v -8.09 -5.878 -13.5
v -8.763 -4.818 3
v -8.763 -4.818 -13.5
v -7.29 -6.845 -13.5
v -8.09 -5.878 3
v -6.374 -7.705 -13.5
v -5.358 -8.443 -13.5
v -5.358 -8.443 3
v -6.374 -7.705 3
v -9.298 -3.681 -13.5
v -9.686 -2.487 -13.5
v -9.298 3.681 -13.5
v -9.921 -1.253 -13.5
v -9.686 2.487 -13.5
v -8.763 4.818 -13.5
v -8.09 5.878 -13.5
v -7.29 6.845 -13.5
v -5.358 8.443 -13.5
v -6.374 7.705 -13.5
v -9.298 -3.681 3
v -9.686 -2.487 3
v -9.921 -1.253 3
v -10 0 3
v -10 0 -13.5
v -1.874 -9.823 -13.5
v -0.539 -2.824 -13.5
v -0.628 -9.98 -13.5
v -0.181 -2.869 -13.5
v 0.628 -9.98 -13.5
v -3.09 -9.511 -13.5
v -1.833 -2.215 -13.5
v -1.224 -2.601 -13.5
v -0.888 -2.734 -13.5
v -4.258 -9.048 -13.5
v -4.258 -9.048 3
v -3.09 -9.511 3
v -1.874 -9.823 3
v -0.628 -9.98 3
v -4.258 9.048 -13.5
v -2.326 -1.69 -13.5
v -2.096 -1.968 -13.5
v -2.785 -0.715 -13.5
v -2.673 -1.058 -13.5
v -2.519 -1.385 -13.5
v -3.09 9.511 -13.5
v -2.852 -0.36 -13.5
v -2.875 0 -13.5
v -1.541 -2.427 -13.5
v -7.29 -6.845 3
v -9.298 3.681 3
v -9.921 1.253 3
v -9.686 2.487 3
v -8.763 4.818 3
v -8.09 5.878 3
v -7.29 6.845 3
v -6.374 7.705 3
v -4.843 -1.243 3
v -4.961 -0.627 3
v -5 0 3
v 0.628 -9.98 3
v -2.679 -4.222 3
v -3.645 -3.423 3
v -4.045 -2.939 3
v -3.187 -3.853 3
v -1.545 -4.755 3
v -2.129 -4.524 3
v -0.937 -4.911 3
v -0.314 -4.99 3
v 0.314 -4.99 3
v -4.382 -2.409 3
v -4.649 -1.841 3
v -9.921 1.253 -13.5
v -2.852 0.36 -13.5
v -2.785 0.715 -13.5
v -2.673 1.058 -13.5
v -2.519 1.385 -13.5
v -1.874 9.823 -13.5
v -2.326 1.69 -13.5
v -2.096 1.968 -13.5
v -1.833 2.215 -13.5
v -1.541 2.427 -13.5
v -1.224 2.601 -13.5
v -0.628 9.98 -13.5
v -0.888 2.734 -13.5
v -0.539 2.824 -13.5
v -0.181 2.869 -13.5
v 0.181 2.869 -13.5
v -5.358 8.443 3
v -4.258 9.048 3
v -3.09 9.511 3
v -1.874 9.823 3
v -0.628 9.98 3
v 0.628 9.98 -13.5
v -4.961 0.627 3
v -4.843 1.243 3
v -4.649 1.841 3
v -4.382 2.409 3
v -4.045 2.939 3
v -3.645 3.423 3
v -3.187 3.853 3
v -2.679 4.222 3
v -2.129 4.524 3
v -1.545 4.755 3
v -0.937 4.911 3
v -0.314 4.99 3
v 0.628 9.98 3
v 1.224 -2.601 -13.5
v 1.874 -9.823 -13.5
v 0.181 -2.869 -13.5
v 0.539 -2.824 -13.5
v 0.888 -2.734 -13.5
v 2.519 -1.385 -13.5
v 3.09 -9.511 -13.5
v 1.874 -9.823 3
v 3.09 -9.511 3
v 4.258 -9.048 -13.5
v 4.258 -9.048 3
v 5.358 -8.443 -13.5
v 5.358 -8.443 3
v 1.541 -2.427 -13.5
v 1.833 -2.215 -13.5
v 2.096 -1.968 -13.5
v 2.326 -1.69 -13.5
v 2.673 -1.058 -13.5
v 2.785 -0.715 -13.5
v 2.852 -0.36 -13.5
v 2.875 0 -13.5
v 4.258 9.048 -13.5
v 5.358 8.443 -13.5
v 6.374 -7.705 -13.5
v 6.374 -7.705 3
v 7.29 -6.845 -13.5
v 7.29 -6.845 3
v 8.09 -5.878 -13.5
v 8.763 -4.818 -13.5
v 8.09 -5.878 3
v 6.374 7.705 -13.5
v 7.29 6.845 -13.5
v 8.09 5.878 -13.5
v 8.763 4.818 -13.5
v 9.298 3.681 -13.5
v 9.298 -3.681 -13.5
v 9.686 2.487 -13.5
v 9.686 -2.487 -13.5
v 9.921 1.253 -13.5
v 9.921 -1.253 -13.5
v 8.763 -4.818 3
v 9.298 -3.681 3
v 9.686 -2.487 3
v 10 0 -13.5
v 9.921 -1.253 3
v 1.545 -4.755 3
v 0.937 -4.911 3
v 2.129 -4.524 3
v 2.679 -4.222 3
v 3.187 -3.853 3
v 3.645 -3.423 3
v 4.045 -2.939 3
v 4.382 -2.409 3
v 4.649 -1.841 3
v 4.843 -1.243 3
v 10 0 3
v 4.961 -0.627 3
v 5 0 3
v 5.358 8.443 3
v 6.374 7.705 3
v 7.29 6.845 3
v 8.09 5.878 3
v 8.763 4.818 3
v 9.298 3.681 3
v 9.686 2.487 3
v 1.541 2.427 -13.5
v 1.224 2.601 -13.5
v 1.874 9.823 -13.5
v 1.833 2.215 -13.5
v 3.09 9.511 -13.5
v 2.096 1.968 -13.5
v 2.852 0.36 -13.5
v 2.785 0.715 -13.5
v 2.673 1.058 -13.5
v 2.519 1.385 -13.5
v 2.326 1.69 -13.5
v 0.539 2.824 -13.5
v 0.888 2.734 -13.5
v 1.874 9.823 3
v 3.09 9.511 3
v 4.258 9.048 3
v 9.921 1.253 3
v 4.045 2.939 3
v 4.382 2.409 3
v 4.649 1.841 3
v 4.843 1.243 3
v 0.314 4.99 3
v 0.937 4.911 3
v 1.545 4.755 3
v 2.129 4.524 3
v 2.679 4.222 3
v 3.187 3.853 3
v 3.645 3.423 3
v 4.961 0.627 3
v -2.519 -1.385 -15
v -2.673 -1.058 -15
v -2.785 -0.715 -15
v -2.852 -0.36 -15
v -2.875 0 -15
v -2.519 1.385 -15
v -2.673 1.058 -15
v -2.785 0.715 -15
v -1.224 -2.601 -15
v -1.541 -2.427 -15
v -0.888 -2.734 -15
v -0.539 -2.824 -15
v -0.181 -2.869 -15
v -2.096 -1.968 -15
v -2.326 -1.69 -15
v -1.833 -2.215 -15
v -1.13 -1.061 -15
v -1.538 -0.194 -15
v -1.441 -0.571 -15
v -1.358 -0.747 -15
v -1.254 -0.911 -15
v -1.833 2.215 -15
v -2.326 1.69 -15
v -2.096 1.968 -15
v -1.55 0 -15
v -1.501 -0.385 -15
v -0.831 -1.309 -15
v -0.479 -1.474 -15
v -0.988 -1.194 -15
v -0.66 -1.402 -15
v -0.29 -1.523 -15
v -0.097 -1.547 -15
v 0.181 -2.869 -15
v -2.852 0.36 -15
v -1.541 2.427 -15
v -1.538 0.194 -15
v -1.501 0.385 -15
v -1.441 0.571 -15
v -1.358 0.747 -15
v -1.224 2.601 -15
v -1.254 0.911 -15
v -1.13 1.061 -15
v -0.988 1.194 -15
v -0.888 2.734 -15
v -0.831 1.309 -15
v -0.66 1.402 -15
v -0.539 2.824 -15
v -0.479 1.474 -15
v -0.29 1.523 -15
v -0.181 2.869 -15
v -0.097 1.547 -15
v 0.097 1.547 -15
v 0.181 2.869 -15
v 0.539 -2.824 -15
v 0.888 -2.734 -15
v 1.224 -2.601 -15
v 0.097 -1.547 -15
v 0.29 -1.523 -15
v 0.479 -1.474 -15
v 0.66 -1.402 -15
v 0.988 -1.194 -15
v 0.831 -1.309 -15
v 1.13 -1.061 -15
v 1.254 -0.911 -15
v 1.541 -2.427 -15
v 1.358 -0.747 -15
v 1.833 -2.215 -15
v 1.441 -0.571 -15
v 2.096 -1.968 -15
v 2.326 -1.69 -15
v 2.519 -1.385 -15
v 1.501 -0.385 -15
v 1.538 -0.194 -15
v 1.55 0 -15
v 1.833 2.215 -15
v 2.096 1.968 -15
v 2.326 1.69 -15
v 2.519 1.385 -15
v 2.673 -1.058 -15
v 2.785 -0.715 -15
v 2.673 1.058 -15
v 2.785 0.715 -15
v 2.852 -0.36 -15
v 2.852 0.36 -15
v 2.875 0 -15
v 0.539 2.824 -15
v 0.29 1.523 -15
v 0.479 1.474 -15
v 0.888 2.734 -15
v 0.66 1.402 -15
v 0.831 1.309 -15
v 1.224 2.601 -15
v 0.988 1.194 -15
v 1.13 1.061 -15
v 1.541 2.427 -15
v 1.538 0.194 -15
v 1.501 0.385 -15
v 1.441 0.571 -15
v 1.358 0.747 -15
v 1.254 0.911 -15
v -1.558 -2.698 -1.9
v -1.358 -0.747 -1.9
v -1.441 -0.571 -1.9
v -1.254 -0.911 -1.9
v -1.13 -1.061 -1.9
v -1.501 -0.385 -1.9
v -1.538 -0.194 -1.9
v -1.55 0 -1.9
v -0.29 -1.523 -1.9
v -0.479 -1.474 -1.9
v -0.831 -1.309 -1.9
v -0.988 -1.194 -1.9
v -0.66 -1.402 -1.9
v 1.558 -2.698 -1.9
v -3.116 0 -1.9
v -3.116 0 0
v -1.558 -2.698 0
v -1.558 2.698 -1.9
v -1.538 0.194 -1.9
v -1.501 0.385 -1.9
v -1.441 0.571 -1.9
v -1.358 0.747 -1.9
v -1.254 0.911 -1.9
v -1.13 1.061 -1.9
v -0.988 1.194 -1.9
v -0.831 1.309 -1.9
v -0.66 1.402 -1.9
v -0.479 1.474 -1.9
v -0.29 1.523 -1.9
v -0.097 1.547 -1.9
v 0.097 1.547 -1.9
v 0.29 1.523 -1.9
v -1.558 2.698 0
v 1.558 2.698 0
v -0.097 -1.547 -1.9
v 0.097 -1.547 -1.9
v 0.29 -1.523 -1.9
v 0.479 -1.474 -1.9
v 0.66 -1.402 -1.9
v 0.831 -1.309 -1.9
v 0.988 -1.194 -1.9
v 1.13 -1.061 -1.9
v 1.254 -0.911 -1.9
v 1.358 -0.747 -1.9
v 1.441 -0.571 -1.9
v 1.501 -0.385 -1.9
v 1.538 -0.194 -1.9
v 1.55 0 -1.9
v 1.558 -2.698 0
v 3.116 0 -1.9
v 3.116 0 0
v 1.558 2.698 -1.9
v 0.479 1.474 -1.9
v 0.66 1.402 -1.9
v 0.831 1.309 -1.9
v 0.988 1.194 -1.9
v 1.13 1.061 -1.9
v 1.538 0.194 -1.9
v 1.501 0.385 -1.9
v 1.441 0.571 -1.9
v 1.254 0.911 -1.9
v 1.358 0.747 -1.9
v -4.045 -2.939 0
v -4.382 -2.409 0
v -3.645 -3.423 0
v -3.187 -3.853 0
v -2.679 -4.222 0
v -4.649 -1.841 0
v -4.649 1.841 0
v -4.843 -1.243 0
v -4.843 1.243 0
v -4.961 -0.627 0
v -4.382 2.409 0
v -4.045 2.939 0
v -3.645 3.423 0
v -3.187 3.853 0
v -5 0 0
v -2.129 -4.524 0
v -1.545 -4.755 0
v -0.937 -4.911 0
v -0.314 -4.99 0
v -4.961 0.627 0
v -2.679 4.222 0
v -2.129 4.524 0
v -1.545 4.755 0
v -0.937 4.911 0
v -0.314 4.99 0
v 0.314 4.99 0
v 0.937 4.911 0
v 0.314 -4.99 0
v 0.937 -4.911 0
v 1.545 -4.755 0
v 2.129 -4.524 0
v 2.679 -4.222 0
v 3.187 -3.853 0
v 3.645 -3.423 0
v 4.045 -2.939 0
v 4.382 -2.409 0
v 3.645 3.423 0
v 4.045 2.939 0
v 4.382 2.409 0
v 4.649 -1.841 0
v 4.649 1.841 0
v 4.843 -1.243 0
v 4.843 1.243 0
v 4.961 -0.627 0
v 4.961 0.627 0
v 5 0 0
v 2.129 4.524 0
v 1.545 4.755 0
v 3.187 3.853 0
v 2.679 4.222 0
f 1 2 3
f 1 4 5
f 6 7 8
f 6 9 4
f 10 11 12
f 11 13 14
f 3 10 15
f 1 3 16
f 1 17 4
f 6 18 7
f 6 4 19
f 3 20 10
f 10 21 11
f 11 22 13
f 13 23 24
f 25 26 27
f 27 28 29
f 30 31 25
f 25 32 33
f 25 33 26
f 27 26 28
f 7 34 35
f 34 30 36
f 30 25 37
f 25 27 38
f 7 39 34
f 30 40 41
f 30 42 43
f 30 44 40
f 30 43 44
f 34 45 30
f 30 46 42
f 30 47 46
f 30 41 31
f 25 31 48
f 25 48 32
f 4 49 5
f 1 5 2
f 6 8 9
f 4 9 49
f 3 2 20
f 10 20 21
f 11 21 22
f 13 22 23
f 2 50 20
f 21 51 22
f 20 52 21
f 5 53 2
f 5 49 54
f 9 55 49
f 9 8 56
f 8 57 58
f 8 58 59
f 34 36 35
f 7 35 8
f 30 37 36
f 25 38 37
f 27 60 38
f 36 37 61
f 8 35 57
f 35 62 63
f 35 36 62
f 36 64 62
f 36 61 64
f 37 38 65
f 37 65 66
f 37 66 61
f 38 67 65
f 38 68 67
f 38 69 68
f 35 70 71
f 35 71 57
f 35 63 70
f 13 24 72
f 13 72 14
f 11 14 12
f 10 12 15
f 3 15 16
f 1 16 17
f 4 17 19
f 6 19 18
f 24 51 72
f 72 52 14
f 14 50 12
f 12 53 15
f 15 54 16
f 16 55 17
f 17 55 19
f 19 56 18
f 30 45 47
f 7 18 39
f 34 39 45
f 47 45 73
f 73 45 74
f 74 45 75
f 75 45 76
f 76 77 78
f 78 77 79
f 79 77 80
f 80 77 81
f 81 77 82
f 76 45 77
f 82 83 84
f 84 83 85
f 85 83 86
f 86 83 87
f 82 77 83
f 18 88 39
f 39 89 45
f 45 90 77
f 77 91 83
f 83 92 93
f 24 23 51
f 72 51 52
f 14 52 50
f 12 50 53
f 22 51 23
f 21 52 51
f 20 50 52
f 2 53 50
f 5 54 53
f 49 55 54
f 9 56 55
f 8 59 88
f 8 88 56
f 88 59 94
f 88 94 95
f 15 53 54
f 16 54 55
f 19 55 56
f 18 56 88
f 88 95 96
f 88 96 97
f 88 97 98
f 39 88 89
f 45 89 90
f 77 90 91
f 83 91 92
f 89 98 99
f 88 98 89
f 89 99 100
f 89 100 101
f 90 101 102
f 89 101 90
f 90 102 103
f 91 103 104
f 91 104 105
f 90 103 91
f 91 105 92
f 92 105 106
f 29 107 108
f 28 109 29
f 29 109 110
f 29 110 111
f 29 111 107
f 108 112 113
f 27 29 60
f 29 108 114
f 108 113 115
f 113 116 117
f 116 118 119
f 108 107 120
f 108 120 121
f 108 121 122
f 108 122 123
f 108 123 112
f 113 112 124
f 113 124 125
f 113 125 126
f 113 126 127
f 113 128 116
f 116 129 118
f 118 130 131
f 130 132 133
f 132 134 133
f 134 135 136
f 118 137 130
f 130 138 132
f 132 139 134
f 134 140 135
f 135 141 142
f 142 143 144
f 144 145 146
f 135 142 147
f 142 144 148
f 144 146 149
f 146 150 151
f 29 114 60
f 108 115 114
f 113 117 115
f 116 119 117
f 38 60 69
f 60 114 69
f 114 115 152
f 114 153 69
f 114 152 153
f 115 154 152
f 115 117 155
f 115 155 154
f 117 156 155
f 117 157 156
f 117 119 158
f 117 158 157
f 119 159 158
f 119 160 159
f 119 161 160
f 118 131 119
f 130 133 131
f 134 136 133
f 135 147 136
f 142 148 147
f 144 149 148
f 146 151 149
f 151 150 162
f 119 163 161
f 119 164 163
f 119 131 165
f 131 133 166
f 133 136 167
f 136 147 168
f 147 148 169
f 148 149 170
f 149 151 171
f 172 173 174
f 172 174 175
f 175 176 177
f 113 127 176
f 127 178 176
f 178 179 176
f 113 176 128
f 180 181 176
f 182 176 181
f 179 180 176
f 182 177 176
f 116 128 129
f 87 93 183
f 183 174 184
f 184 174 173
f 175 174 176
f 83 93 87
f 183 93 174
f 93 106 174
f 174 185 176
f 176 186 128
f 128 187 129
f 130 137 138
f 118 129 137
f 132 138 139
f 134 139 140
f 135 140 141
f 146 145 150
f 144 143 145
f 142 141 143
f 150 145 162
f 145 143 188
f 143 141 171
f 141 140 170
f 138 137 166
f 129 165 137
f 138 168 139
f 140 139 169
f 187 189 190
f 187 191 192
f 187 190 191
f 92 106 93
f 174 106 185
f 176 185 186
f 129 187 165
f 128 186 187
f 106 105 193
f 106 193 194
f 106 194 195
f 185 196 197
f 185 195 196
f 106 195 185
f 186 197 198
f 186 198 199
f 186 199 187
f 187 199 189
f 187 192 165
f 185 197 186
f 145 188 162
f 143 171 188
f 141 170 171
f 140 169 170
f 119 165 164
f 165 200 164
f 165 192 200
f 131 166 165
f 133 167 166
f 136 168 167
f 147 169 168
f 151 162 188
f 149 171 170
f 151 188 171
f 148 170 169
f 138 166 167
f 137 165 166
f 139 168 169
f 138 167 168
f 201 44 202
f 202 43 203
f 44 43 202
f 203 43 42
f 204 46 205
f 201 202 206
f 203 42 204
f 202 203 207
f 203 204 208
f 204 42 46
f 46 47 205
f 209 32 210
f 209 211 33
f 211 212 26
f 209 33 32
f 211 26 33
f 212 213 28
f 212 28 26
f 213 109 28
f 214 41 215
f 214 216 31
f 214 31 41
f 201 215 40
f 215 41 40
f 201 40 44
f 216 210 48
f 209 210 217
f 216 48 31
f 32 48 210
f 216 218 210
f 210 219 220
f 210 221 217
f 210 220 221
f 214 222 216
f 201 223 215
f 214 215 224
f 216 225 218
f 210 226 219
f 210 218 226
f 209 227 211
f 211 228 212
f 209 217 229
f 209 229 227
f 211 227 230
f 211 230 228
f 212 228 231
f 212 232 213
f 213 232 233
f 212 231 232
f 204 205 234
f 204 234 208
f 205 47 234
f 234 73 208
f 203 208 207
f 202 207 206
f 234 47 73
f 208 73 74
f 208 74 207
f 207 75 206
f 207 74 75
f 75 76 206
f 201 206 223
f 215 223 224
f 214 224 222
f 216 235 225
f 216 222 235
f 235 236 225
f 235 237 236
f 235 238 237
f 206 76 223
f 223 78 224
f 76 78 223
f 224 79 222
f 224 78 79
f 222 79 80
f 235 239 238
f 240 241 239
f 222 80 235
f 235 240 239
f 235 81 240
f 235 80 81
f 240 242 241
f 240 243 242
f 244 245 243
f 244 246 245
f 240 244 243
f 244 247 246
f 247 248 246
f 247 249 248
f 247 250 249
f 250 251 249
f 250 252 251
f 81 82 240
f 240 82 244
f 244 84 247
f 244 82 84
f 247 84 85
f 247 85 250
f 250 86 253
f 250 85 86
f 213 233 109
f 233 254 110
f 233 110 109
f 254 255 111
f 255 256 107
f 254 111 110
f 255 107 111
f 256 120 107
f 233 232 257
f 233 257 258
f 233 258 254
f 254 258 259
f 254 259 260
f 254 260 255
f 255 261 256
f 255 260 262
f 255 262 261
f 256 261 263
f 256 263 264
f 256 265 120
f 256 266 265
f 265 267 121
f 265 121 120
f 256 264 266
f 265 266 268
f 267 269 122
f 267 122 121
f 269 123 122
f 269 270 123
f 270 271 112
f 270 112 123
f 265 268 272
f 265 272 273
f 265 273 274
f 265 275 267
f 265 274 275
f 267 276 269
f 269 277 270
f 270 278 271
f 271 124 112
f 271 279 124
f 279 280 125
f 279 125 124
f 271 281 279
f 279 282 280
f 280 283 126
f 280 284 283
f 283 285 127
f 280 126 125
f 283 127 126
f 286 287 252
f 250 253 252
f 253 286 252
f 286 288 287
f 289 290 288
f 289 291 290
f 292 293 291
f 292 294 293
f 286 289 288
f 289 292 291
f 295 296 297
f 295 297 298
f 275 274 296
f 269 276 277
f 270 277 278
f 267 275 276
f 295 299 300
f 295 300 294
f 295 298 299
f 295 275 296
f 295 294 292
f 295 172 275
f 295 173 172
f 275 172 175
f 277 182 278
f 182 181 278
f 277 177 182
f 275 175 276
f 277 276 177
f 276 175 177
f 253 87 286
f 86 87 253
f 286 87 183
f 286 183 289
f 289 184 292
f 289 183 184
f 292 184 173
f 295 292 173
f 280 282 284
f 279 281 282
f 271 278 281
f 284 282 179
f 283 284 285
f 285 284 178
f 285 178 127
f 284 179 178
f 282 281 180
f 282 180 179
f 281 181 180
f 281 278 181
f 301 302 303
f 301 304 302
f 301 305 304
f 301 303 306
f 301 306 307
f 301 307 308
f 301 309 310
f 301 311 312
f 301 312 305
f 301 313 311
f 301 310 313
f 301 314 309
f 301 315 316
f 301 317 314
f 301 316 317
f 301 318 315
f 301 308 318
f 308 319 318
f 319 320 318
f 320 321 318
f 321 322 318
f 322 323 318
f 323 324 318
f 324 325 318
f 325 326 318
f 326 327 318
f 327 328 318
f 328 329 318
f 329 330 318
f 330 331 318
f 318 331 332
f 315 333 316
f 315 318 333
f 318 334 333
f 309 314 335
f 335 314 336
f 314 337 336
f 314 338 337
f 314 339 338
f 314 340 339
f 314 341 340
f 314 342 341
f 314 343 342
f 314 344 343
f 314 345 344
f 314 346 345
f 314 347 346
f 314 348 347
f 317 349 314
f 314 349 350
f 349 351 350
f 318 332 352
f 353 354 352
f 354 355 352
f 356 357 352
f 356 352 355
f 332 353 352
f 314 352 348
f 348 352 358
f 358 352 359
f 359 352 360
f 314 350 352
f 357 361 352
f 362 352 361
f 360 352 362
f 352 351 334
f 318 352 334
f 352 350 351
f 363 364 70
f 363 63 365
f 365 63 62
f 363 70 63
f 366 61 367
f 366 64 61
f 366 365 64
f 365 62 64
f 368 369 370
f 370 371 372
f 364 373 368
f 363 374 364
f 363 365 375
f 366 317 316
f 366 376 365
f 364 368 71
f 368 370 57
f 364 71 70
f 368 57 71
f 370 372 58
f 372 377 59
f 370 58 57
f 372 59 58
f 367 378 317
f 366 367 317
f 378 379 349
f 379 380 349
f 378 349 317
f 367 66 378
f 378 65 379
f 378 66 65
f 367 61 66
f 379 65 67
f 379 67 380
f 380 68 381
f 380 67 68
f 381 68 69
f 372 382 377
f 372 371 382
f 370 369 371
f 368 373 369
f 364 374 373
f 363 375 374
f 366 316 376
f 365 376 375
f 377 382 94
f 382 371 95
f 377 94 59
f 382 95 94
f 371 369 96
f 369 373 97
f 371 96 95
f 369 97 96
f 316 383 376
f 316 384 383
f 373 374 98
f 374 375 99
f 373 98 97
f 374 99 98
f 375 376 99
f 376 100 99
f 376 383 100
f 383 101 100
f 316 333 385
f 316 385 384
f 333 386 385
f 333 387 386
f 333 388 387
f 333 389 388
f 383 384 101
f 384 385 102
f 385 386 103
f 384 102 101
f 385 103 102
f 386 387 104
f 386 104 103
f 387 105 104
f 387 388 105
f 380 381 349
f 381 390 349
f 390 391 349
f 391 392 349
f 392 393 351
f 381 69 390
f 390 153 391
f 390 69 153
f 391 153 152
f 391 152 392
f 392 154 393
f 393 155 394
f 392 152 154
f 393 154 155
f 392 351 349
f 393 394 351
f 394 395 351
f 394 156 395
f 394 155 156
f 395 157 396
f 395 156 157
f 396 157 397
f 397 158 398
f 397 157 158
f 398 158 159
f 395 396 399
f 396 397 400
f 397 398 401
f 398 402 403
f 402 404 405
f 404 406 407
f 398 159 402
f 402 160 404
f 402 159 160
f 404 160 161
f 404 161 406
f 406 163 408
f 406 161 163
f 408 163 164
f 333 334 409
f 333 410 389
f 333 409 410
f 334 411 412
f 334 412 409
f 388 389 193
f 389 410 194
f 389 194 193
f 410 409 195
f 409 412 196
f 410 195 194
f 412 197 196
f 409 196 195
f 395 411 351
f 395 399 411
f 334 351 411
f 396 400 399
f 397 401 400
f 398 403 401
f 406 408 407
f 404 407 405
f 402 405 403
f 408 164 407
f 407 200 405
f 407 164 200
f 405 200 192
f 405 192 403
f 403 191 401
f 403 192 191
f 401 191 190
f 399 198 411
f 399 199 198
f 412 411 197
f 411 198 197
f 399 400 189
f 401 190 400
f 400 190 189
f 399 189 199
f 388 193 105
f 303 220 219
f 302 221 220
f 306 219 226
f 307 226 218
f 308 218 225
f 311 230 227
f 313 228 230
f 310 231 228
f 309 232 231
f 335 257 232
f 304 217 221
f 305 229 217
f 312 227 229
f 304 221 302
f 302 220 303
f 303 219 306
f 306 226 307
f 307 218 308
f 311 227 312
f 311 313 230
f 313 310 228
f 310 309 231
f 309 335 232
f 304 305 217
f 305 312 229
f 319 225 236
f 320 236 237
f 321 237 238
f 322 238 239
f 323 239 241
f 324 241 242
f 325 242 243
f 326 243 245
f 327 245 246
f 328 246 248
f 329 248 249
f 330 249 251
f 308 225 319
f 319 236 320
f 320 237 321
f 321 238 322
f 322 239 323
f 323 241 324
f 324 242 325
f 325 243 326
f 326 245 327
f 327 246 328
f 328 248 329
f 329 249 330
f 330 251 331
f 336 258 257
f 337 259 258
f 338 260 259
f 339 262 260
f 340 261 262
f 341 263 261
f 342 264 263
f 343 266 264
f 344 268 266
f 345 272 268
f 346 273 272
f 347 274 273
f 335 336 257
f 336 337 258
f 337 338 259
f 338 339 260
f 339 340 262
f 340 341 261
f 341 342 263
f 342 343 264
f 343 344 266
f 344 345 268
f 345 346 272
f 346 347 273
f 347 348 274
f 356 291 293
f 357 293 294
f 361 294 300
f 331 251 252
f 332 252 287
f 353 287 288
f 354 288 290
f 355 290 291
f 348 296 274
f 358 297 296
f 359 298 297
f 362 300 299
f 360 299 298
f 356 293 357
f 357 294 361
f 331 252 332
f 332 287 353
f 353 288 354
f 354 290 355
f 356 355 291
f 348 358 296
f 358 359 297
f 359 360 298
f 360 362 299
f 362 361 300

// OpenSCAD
$fn = 50;


difference() {
	union() {
		translate(v = [0, 0, -13.5000000000]) {
			cylinder(h = 16.5000000000, r = 10.0000000000);
		}
		#translate(v = [0, 0, -15.0000000000]) {
			cylinder(h = 15, r = 2.8750000000);
		}
	}
	union() {
		translate(v = [0, 0, 0]) {
			rotate(a = [0, 0, 0]) {
				difference() {
					union() {
						translate(v = [0, 0, -1.9000000000]) {
							linear_extrude(height = 1.9000000000) {
								polygon(points = [[3.1158000000, 0.0000000000], [1.5579000000, 2.6983619531], [-1.5579000000, 2.6983619531], [-3.1158000000, 0.0000000000], [-1.5579000000, -2.6983619531], [1.5579000000, -2.6983619531]]);
							}
						}
					}
					union();
				}
			}
		}
		#cylinder(h = 3, r = 5.0000000000);
		#translate(v = [0, 0, -100.0000000000]) {
			cylinder(h = 200, r = 1.5500000000);
		}
	}
}
